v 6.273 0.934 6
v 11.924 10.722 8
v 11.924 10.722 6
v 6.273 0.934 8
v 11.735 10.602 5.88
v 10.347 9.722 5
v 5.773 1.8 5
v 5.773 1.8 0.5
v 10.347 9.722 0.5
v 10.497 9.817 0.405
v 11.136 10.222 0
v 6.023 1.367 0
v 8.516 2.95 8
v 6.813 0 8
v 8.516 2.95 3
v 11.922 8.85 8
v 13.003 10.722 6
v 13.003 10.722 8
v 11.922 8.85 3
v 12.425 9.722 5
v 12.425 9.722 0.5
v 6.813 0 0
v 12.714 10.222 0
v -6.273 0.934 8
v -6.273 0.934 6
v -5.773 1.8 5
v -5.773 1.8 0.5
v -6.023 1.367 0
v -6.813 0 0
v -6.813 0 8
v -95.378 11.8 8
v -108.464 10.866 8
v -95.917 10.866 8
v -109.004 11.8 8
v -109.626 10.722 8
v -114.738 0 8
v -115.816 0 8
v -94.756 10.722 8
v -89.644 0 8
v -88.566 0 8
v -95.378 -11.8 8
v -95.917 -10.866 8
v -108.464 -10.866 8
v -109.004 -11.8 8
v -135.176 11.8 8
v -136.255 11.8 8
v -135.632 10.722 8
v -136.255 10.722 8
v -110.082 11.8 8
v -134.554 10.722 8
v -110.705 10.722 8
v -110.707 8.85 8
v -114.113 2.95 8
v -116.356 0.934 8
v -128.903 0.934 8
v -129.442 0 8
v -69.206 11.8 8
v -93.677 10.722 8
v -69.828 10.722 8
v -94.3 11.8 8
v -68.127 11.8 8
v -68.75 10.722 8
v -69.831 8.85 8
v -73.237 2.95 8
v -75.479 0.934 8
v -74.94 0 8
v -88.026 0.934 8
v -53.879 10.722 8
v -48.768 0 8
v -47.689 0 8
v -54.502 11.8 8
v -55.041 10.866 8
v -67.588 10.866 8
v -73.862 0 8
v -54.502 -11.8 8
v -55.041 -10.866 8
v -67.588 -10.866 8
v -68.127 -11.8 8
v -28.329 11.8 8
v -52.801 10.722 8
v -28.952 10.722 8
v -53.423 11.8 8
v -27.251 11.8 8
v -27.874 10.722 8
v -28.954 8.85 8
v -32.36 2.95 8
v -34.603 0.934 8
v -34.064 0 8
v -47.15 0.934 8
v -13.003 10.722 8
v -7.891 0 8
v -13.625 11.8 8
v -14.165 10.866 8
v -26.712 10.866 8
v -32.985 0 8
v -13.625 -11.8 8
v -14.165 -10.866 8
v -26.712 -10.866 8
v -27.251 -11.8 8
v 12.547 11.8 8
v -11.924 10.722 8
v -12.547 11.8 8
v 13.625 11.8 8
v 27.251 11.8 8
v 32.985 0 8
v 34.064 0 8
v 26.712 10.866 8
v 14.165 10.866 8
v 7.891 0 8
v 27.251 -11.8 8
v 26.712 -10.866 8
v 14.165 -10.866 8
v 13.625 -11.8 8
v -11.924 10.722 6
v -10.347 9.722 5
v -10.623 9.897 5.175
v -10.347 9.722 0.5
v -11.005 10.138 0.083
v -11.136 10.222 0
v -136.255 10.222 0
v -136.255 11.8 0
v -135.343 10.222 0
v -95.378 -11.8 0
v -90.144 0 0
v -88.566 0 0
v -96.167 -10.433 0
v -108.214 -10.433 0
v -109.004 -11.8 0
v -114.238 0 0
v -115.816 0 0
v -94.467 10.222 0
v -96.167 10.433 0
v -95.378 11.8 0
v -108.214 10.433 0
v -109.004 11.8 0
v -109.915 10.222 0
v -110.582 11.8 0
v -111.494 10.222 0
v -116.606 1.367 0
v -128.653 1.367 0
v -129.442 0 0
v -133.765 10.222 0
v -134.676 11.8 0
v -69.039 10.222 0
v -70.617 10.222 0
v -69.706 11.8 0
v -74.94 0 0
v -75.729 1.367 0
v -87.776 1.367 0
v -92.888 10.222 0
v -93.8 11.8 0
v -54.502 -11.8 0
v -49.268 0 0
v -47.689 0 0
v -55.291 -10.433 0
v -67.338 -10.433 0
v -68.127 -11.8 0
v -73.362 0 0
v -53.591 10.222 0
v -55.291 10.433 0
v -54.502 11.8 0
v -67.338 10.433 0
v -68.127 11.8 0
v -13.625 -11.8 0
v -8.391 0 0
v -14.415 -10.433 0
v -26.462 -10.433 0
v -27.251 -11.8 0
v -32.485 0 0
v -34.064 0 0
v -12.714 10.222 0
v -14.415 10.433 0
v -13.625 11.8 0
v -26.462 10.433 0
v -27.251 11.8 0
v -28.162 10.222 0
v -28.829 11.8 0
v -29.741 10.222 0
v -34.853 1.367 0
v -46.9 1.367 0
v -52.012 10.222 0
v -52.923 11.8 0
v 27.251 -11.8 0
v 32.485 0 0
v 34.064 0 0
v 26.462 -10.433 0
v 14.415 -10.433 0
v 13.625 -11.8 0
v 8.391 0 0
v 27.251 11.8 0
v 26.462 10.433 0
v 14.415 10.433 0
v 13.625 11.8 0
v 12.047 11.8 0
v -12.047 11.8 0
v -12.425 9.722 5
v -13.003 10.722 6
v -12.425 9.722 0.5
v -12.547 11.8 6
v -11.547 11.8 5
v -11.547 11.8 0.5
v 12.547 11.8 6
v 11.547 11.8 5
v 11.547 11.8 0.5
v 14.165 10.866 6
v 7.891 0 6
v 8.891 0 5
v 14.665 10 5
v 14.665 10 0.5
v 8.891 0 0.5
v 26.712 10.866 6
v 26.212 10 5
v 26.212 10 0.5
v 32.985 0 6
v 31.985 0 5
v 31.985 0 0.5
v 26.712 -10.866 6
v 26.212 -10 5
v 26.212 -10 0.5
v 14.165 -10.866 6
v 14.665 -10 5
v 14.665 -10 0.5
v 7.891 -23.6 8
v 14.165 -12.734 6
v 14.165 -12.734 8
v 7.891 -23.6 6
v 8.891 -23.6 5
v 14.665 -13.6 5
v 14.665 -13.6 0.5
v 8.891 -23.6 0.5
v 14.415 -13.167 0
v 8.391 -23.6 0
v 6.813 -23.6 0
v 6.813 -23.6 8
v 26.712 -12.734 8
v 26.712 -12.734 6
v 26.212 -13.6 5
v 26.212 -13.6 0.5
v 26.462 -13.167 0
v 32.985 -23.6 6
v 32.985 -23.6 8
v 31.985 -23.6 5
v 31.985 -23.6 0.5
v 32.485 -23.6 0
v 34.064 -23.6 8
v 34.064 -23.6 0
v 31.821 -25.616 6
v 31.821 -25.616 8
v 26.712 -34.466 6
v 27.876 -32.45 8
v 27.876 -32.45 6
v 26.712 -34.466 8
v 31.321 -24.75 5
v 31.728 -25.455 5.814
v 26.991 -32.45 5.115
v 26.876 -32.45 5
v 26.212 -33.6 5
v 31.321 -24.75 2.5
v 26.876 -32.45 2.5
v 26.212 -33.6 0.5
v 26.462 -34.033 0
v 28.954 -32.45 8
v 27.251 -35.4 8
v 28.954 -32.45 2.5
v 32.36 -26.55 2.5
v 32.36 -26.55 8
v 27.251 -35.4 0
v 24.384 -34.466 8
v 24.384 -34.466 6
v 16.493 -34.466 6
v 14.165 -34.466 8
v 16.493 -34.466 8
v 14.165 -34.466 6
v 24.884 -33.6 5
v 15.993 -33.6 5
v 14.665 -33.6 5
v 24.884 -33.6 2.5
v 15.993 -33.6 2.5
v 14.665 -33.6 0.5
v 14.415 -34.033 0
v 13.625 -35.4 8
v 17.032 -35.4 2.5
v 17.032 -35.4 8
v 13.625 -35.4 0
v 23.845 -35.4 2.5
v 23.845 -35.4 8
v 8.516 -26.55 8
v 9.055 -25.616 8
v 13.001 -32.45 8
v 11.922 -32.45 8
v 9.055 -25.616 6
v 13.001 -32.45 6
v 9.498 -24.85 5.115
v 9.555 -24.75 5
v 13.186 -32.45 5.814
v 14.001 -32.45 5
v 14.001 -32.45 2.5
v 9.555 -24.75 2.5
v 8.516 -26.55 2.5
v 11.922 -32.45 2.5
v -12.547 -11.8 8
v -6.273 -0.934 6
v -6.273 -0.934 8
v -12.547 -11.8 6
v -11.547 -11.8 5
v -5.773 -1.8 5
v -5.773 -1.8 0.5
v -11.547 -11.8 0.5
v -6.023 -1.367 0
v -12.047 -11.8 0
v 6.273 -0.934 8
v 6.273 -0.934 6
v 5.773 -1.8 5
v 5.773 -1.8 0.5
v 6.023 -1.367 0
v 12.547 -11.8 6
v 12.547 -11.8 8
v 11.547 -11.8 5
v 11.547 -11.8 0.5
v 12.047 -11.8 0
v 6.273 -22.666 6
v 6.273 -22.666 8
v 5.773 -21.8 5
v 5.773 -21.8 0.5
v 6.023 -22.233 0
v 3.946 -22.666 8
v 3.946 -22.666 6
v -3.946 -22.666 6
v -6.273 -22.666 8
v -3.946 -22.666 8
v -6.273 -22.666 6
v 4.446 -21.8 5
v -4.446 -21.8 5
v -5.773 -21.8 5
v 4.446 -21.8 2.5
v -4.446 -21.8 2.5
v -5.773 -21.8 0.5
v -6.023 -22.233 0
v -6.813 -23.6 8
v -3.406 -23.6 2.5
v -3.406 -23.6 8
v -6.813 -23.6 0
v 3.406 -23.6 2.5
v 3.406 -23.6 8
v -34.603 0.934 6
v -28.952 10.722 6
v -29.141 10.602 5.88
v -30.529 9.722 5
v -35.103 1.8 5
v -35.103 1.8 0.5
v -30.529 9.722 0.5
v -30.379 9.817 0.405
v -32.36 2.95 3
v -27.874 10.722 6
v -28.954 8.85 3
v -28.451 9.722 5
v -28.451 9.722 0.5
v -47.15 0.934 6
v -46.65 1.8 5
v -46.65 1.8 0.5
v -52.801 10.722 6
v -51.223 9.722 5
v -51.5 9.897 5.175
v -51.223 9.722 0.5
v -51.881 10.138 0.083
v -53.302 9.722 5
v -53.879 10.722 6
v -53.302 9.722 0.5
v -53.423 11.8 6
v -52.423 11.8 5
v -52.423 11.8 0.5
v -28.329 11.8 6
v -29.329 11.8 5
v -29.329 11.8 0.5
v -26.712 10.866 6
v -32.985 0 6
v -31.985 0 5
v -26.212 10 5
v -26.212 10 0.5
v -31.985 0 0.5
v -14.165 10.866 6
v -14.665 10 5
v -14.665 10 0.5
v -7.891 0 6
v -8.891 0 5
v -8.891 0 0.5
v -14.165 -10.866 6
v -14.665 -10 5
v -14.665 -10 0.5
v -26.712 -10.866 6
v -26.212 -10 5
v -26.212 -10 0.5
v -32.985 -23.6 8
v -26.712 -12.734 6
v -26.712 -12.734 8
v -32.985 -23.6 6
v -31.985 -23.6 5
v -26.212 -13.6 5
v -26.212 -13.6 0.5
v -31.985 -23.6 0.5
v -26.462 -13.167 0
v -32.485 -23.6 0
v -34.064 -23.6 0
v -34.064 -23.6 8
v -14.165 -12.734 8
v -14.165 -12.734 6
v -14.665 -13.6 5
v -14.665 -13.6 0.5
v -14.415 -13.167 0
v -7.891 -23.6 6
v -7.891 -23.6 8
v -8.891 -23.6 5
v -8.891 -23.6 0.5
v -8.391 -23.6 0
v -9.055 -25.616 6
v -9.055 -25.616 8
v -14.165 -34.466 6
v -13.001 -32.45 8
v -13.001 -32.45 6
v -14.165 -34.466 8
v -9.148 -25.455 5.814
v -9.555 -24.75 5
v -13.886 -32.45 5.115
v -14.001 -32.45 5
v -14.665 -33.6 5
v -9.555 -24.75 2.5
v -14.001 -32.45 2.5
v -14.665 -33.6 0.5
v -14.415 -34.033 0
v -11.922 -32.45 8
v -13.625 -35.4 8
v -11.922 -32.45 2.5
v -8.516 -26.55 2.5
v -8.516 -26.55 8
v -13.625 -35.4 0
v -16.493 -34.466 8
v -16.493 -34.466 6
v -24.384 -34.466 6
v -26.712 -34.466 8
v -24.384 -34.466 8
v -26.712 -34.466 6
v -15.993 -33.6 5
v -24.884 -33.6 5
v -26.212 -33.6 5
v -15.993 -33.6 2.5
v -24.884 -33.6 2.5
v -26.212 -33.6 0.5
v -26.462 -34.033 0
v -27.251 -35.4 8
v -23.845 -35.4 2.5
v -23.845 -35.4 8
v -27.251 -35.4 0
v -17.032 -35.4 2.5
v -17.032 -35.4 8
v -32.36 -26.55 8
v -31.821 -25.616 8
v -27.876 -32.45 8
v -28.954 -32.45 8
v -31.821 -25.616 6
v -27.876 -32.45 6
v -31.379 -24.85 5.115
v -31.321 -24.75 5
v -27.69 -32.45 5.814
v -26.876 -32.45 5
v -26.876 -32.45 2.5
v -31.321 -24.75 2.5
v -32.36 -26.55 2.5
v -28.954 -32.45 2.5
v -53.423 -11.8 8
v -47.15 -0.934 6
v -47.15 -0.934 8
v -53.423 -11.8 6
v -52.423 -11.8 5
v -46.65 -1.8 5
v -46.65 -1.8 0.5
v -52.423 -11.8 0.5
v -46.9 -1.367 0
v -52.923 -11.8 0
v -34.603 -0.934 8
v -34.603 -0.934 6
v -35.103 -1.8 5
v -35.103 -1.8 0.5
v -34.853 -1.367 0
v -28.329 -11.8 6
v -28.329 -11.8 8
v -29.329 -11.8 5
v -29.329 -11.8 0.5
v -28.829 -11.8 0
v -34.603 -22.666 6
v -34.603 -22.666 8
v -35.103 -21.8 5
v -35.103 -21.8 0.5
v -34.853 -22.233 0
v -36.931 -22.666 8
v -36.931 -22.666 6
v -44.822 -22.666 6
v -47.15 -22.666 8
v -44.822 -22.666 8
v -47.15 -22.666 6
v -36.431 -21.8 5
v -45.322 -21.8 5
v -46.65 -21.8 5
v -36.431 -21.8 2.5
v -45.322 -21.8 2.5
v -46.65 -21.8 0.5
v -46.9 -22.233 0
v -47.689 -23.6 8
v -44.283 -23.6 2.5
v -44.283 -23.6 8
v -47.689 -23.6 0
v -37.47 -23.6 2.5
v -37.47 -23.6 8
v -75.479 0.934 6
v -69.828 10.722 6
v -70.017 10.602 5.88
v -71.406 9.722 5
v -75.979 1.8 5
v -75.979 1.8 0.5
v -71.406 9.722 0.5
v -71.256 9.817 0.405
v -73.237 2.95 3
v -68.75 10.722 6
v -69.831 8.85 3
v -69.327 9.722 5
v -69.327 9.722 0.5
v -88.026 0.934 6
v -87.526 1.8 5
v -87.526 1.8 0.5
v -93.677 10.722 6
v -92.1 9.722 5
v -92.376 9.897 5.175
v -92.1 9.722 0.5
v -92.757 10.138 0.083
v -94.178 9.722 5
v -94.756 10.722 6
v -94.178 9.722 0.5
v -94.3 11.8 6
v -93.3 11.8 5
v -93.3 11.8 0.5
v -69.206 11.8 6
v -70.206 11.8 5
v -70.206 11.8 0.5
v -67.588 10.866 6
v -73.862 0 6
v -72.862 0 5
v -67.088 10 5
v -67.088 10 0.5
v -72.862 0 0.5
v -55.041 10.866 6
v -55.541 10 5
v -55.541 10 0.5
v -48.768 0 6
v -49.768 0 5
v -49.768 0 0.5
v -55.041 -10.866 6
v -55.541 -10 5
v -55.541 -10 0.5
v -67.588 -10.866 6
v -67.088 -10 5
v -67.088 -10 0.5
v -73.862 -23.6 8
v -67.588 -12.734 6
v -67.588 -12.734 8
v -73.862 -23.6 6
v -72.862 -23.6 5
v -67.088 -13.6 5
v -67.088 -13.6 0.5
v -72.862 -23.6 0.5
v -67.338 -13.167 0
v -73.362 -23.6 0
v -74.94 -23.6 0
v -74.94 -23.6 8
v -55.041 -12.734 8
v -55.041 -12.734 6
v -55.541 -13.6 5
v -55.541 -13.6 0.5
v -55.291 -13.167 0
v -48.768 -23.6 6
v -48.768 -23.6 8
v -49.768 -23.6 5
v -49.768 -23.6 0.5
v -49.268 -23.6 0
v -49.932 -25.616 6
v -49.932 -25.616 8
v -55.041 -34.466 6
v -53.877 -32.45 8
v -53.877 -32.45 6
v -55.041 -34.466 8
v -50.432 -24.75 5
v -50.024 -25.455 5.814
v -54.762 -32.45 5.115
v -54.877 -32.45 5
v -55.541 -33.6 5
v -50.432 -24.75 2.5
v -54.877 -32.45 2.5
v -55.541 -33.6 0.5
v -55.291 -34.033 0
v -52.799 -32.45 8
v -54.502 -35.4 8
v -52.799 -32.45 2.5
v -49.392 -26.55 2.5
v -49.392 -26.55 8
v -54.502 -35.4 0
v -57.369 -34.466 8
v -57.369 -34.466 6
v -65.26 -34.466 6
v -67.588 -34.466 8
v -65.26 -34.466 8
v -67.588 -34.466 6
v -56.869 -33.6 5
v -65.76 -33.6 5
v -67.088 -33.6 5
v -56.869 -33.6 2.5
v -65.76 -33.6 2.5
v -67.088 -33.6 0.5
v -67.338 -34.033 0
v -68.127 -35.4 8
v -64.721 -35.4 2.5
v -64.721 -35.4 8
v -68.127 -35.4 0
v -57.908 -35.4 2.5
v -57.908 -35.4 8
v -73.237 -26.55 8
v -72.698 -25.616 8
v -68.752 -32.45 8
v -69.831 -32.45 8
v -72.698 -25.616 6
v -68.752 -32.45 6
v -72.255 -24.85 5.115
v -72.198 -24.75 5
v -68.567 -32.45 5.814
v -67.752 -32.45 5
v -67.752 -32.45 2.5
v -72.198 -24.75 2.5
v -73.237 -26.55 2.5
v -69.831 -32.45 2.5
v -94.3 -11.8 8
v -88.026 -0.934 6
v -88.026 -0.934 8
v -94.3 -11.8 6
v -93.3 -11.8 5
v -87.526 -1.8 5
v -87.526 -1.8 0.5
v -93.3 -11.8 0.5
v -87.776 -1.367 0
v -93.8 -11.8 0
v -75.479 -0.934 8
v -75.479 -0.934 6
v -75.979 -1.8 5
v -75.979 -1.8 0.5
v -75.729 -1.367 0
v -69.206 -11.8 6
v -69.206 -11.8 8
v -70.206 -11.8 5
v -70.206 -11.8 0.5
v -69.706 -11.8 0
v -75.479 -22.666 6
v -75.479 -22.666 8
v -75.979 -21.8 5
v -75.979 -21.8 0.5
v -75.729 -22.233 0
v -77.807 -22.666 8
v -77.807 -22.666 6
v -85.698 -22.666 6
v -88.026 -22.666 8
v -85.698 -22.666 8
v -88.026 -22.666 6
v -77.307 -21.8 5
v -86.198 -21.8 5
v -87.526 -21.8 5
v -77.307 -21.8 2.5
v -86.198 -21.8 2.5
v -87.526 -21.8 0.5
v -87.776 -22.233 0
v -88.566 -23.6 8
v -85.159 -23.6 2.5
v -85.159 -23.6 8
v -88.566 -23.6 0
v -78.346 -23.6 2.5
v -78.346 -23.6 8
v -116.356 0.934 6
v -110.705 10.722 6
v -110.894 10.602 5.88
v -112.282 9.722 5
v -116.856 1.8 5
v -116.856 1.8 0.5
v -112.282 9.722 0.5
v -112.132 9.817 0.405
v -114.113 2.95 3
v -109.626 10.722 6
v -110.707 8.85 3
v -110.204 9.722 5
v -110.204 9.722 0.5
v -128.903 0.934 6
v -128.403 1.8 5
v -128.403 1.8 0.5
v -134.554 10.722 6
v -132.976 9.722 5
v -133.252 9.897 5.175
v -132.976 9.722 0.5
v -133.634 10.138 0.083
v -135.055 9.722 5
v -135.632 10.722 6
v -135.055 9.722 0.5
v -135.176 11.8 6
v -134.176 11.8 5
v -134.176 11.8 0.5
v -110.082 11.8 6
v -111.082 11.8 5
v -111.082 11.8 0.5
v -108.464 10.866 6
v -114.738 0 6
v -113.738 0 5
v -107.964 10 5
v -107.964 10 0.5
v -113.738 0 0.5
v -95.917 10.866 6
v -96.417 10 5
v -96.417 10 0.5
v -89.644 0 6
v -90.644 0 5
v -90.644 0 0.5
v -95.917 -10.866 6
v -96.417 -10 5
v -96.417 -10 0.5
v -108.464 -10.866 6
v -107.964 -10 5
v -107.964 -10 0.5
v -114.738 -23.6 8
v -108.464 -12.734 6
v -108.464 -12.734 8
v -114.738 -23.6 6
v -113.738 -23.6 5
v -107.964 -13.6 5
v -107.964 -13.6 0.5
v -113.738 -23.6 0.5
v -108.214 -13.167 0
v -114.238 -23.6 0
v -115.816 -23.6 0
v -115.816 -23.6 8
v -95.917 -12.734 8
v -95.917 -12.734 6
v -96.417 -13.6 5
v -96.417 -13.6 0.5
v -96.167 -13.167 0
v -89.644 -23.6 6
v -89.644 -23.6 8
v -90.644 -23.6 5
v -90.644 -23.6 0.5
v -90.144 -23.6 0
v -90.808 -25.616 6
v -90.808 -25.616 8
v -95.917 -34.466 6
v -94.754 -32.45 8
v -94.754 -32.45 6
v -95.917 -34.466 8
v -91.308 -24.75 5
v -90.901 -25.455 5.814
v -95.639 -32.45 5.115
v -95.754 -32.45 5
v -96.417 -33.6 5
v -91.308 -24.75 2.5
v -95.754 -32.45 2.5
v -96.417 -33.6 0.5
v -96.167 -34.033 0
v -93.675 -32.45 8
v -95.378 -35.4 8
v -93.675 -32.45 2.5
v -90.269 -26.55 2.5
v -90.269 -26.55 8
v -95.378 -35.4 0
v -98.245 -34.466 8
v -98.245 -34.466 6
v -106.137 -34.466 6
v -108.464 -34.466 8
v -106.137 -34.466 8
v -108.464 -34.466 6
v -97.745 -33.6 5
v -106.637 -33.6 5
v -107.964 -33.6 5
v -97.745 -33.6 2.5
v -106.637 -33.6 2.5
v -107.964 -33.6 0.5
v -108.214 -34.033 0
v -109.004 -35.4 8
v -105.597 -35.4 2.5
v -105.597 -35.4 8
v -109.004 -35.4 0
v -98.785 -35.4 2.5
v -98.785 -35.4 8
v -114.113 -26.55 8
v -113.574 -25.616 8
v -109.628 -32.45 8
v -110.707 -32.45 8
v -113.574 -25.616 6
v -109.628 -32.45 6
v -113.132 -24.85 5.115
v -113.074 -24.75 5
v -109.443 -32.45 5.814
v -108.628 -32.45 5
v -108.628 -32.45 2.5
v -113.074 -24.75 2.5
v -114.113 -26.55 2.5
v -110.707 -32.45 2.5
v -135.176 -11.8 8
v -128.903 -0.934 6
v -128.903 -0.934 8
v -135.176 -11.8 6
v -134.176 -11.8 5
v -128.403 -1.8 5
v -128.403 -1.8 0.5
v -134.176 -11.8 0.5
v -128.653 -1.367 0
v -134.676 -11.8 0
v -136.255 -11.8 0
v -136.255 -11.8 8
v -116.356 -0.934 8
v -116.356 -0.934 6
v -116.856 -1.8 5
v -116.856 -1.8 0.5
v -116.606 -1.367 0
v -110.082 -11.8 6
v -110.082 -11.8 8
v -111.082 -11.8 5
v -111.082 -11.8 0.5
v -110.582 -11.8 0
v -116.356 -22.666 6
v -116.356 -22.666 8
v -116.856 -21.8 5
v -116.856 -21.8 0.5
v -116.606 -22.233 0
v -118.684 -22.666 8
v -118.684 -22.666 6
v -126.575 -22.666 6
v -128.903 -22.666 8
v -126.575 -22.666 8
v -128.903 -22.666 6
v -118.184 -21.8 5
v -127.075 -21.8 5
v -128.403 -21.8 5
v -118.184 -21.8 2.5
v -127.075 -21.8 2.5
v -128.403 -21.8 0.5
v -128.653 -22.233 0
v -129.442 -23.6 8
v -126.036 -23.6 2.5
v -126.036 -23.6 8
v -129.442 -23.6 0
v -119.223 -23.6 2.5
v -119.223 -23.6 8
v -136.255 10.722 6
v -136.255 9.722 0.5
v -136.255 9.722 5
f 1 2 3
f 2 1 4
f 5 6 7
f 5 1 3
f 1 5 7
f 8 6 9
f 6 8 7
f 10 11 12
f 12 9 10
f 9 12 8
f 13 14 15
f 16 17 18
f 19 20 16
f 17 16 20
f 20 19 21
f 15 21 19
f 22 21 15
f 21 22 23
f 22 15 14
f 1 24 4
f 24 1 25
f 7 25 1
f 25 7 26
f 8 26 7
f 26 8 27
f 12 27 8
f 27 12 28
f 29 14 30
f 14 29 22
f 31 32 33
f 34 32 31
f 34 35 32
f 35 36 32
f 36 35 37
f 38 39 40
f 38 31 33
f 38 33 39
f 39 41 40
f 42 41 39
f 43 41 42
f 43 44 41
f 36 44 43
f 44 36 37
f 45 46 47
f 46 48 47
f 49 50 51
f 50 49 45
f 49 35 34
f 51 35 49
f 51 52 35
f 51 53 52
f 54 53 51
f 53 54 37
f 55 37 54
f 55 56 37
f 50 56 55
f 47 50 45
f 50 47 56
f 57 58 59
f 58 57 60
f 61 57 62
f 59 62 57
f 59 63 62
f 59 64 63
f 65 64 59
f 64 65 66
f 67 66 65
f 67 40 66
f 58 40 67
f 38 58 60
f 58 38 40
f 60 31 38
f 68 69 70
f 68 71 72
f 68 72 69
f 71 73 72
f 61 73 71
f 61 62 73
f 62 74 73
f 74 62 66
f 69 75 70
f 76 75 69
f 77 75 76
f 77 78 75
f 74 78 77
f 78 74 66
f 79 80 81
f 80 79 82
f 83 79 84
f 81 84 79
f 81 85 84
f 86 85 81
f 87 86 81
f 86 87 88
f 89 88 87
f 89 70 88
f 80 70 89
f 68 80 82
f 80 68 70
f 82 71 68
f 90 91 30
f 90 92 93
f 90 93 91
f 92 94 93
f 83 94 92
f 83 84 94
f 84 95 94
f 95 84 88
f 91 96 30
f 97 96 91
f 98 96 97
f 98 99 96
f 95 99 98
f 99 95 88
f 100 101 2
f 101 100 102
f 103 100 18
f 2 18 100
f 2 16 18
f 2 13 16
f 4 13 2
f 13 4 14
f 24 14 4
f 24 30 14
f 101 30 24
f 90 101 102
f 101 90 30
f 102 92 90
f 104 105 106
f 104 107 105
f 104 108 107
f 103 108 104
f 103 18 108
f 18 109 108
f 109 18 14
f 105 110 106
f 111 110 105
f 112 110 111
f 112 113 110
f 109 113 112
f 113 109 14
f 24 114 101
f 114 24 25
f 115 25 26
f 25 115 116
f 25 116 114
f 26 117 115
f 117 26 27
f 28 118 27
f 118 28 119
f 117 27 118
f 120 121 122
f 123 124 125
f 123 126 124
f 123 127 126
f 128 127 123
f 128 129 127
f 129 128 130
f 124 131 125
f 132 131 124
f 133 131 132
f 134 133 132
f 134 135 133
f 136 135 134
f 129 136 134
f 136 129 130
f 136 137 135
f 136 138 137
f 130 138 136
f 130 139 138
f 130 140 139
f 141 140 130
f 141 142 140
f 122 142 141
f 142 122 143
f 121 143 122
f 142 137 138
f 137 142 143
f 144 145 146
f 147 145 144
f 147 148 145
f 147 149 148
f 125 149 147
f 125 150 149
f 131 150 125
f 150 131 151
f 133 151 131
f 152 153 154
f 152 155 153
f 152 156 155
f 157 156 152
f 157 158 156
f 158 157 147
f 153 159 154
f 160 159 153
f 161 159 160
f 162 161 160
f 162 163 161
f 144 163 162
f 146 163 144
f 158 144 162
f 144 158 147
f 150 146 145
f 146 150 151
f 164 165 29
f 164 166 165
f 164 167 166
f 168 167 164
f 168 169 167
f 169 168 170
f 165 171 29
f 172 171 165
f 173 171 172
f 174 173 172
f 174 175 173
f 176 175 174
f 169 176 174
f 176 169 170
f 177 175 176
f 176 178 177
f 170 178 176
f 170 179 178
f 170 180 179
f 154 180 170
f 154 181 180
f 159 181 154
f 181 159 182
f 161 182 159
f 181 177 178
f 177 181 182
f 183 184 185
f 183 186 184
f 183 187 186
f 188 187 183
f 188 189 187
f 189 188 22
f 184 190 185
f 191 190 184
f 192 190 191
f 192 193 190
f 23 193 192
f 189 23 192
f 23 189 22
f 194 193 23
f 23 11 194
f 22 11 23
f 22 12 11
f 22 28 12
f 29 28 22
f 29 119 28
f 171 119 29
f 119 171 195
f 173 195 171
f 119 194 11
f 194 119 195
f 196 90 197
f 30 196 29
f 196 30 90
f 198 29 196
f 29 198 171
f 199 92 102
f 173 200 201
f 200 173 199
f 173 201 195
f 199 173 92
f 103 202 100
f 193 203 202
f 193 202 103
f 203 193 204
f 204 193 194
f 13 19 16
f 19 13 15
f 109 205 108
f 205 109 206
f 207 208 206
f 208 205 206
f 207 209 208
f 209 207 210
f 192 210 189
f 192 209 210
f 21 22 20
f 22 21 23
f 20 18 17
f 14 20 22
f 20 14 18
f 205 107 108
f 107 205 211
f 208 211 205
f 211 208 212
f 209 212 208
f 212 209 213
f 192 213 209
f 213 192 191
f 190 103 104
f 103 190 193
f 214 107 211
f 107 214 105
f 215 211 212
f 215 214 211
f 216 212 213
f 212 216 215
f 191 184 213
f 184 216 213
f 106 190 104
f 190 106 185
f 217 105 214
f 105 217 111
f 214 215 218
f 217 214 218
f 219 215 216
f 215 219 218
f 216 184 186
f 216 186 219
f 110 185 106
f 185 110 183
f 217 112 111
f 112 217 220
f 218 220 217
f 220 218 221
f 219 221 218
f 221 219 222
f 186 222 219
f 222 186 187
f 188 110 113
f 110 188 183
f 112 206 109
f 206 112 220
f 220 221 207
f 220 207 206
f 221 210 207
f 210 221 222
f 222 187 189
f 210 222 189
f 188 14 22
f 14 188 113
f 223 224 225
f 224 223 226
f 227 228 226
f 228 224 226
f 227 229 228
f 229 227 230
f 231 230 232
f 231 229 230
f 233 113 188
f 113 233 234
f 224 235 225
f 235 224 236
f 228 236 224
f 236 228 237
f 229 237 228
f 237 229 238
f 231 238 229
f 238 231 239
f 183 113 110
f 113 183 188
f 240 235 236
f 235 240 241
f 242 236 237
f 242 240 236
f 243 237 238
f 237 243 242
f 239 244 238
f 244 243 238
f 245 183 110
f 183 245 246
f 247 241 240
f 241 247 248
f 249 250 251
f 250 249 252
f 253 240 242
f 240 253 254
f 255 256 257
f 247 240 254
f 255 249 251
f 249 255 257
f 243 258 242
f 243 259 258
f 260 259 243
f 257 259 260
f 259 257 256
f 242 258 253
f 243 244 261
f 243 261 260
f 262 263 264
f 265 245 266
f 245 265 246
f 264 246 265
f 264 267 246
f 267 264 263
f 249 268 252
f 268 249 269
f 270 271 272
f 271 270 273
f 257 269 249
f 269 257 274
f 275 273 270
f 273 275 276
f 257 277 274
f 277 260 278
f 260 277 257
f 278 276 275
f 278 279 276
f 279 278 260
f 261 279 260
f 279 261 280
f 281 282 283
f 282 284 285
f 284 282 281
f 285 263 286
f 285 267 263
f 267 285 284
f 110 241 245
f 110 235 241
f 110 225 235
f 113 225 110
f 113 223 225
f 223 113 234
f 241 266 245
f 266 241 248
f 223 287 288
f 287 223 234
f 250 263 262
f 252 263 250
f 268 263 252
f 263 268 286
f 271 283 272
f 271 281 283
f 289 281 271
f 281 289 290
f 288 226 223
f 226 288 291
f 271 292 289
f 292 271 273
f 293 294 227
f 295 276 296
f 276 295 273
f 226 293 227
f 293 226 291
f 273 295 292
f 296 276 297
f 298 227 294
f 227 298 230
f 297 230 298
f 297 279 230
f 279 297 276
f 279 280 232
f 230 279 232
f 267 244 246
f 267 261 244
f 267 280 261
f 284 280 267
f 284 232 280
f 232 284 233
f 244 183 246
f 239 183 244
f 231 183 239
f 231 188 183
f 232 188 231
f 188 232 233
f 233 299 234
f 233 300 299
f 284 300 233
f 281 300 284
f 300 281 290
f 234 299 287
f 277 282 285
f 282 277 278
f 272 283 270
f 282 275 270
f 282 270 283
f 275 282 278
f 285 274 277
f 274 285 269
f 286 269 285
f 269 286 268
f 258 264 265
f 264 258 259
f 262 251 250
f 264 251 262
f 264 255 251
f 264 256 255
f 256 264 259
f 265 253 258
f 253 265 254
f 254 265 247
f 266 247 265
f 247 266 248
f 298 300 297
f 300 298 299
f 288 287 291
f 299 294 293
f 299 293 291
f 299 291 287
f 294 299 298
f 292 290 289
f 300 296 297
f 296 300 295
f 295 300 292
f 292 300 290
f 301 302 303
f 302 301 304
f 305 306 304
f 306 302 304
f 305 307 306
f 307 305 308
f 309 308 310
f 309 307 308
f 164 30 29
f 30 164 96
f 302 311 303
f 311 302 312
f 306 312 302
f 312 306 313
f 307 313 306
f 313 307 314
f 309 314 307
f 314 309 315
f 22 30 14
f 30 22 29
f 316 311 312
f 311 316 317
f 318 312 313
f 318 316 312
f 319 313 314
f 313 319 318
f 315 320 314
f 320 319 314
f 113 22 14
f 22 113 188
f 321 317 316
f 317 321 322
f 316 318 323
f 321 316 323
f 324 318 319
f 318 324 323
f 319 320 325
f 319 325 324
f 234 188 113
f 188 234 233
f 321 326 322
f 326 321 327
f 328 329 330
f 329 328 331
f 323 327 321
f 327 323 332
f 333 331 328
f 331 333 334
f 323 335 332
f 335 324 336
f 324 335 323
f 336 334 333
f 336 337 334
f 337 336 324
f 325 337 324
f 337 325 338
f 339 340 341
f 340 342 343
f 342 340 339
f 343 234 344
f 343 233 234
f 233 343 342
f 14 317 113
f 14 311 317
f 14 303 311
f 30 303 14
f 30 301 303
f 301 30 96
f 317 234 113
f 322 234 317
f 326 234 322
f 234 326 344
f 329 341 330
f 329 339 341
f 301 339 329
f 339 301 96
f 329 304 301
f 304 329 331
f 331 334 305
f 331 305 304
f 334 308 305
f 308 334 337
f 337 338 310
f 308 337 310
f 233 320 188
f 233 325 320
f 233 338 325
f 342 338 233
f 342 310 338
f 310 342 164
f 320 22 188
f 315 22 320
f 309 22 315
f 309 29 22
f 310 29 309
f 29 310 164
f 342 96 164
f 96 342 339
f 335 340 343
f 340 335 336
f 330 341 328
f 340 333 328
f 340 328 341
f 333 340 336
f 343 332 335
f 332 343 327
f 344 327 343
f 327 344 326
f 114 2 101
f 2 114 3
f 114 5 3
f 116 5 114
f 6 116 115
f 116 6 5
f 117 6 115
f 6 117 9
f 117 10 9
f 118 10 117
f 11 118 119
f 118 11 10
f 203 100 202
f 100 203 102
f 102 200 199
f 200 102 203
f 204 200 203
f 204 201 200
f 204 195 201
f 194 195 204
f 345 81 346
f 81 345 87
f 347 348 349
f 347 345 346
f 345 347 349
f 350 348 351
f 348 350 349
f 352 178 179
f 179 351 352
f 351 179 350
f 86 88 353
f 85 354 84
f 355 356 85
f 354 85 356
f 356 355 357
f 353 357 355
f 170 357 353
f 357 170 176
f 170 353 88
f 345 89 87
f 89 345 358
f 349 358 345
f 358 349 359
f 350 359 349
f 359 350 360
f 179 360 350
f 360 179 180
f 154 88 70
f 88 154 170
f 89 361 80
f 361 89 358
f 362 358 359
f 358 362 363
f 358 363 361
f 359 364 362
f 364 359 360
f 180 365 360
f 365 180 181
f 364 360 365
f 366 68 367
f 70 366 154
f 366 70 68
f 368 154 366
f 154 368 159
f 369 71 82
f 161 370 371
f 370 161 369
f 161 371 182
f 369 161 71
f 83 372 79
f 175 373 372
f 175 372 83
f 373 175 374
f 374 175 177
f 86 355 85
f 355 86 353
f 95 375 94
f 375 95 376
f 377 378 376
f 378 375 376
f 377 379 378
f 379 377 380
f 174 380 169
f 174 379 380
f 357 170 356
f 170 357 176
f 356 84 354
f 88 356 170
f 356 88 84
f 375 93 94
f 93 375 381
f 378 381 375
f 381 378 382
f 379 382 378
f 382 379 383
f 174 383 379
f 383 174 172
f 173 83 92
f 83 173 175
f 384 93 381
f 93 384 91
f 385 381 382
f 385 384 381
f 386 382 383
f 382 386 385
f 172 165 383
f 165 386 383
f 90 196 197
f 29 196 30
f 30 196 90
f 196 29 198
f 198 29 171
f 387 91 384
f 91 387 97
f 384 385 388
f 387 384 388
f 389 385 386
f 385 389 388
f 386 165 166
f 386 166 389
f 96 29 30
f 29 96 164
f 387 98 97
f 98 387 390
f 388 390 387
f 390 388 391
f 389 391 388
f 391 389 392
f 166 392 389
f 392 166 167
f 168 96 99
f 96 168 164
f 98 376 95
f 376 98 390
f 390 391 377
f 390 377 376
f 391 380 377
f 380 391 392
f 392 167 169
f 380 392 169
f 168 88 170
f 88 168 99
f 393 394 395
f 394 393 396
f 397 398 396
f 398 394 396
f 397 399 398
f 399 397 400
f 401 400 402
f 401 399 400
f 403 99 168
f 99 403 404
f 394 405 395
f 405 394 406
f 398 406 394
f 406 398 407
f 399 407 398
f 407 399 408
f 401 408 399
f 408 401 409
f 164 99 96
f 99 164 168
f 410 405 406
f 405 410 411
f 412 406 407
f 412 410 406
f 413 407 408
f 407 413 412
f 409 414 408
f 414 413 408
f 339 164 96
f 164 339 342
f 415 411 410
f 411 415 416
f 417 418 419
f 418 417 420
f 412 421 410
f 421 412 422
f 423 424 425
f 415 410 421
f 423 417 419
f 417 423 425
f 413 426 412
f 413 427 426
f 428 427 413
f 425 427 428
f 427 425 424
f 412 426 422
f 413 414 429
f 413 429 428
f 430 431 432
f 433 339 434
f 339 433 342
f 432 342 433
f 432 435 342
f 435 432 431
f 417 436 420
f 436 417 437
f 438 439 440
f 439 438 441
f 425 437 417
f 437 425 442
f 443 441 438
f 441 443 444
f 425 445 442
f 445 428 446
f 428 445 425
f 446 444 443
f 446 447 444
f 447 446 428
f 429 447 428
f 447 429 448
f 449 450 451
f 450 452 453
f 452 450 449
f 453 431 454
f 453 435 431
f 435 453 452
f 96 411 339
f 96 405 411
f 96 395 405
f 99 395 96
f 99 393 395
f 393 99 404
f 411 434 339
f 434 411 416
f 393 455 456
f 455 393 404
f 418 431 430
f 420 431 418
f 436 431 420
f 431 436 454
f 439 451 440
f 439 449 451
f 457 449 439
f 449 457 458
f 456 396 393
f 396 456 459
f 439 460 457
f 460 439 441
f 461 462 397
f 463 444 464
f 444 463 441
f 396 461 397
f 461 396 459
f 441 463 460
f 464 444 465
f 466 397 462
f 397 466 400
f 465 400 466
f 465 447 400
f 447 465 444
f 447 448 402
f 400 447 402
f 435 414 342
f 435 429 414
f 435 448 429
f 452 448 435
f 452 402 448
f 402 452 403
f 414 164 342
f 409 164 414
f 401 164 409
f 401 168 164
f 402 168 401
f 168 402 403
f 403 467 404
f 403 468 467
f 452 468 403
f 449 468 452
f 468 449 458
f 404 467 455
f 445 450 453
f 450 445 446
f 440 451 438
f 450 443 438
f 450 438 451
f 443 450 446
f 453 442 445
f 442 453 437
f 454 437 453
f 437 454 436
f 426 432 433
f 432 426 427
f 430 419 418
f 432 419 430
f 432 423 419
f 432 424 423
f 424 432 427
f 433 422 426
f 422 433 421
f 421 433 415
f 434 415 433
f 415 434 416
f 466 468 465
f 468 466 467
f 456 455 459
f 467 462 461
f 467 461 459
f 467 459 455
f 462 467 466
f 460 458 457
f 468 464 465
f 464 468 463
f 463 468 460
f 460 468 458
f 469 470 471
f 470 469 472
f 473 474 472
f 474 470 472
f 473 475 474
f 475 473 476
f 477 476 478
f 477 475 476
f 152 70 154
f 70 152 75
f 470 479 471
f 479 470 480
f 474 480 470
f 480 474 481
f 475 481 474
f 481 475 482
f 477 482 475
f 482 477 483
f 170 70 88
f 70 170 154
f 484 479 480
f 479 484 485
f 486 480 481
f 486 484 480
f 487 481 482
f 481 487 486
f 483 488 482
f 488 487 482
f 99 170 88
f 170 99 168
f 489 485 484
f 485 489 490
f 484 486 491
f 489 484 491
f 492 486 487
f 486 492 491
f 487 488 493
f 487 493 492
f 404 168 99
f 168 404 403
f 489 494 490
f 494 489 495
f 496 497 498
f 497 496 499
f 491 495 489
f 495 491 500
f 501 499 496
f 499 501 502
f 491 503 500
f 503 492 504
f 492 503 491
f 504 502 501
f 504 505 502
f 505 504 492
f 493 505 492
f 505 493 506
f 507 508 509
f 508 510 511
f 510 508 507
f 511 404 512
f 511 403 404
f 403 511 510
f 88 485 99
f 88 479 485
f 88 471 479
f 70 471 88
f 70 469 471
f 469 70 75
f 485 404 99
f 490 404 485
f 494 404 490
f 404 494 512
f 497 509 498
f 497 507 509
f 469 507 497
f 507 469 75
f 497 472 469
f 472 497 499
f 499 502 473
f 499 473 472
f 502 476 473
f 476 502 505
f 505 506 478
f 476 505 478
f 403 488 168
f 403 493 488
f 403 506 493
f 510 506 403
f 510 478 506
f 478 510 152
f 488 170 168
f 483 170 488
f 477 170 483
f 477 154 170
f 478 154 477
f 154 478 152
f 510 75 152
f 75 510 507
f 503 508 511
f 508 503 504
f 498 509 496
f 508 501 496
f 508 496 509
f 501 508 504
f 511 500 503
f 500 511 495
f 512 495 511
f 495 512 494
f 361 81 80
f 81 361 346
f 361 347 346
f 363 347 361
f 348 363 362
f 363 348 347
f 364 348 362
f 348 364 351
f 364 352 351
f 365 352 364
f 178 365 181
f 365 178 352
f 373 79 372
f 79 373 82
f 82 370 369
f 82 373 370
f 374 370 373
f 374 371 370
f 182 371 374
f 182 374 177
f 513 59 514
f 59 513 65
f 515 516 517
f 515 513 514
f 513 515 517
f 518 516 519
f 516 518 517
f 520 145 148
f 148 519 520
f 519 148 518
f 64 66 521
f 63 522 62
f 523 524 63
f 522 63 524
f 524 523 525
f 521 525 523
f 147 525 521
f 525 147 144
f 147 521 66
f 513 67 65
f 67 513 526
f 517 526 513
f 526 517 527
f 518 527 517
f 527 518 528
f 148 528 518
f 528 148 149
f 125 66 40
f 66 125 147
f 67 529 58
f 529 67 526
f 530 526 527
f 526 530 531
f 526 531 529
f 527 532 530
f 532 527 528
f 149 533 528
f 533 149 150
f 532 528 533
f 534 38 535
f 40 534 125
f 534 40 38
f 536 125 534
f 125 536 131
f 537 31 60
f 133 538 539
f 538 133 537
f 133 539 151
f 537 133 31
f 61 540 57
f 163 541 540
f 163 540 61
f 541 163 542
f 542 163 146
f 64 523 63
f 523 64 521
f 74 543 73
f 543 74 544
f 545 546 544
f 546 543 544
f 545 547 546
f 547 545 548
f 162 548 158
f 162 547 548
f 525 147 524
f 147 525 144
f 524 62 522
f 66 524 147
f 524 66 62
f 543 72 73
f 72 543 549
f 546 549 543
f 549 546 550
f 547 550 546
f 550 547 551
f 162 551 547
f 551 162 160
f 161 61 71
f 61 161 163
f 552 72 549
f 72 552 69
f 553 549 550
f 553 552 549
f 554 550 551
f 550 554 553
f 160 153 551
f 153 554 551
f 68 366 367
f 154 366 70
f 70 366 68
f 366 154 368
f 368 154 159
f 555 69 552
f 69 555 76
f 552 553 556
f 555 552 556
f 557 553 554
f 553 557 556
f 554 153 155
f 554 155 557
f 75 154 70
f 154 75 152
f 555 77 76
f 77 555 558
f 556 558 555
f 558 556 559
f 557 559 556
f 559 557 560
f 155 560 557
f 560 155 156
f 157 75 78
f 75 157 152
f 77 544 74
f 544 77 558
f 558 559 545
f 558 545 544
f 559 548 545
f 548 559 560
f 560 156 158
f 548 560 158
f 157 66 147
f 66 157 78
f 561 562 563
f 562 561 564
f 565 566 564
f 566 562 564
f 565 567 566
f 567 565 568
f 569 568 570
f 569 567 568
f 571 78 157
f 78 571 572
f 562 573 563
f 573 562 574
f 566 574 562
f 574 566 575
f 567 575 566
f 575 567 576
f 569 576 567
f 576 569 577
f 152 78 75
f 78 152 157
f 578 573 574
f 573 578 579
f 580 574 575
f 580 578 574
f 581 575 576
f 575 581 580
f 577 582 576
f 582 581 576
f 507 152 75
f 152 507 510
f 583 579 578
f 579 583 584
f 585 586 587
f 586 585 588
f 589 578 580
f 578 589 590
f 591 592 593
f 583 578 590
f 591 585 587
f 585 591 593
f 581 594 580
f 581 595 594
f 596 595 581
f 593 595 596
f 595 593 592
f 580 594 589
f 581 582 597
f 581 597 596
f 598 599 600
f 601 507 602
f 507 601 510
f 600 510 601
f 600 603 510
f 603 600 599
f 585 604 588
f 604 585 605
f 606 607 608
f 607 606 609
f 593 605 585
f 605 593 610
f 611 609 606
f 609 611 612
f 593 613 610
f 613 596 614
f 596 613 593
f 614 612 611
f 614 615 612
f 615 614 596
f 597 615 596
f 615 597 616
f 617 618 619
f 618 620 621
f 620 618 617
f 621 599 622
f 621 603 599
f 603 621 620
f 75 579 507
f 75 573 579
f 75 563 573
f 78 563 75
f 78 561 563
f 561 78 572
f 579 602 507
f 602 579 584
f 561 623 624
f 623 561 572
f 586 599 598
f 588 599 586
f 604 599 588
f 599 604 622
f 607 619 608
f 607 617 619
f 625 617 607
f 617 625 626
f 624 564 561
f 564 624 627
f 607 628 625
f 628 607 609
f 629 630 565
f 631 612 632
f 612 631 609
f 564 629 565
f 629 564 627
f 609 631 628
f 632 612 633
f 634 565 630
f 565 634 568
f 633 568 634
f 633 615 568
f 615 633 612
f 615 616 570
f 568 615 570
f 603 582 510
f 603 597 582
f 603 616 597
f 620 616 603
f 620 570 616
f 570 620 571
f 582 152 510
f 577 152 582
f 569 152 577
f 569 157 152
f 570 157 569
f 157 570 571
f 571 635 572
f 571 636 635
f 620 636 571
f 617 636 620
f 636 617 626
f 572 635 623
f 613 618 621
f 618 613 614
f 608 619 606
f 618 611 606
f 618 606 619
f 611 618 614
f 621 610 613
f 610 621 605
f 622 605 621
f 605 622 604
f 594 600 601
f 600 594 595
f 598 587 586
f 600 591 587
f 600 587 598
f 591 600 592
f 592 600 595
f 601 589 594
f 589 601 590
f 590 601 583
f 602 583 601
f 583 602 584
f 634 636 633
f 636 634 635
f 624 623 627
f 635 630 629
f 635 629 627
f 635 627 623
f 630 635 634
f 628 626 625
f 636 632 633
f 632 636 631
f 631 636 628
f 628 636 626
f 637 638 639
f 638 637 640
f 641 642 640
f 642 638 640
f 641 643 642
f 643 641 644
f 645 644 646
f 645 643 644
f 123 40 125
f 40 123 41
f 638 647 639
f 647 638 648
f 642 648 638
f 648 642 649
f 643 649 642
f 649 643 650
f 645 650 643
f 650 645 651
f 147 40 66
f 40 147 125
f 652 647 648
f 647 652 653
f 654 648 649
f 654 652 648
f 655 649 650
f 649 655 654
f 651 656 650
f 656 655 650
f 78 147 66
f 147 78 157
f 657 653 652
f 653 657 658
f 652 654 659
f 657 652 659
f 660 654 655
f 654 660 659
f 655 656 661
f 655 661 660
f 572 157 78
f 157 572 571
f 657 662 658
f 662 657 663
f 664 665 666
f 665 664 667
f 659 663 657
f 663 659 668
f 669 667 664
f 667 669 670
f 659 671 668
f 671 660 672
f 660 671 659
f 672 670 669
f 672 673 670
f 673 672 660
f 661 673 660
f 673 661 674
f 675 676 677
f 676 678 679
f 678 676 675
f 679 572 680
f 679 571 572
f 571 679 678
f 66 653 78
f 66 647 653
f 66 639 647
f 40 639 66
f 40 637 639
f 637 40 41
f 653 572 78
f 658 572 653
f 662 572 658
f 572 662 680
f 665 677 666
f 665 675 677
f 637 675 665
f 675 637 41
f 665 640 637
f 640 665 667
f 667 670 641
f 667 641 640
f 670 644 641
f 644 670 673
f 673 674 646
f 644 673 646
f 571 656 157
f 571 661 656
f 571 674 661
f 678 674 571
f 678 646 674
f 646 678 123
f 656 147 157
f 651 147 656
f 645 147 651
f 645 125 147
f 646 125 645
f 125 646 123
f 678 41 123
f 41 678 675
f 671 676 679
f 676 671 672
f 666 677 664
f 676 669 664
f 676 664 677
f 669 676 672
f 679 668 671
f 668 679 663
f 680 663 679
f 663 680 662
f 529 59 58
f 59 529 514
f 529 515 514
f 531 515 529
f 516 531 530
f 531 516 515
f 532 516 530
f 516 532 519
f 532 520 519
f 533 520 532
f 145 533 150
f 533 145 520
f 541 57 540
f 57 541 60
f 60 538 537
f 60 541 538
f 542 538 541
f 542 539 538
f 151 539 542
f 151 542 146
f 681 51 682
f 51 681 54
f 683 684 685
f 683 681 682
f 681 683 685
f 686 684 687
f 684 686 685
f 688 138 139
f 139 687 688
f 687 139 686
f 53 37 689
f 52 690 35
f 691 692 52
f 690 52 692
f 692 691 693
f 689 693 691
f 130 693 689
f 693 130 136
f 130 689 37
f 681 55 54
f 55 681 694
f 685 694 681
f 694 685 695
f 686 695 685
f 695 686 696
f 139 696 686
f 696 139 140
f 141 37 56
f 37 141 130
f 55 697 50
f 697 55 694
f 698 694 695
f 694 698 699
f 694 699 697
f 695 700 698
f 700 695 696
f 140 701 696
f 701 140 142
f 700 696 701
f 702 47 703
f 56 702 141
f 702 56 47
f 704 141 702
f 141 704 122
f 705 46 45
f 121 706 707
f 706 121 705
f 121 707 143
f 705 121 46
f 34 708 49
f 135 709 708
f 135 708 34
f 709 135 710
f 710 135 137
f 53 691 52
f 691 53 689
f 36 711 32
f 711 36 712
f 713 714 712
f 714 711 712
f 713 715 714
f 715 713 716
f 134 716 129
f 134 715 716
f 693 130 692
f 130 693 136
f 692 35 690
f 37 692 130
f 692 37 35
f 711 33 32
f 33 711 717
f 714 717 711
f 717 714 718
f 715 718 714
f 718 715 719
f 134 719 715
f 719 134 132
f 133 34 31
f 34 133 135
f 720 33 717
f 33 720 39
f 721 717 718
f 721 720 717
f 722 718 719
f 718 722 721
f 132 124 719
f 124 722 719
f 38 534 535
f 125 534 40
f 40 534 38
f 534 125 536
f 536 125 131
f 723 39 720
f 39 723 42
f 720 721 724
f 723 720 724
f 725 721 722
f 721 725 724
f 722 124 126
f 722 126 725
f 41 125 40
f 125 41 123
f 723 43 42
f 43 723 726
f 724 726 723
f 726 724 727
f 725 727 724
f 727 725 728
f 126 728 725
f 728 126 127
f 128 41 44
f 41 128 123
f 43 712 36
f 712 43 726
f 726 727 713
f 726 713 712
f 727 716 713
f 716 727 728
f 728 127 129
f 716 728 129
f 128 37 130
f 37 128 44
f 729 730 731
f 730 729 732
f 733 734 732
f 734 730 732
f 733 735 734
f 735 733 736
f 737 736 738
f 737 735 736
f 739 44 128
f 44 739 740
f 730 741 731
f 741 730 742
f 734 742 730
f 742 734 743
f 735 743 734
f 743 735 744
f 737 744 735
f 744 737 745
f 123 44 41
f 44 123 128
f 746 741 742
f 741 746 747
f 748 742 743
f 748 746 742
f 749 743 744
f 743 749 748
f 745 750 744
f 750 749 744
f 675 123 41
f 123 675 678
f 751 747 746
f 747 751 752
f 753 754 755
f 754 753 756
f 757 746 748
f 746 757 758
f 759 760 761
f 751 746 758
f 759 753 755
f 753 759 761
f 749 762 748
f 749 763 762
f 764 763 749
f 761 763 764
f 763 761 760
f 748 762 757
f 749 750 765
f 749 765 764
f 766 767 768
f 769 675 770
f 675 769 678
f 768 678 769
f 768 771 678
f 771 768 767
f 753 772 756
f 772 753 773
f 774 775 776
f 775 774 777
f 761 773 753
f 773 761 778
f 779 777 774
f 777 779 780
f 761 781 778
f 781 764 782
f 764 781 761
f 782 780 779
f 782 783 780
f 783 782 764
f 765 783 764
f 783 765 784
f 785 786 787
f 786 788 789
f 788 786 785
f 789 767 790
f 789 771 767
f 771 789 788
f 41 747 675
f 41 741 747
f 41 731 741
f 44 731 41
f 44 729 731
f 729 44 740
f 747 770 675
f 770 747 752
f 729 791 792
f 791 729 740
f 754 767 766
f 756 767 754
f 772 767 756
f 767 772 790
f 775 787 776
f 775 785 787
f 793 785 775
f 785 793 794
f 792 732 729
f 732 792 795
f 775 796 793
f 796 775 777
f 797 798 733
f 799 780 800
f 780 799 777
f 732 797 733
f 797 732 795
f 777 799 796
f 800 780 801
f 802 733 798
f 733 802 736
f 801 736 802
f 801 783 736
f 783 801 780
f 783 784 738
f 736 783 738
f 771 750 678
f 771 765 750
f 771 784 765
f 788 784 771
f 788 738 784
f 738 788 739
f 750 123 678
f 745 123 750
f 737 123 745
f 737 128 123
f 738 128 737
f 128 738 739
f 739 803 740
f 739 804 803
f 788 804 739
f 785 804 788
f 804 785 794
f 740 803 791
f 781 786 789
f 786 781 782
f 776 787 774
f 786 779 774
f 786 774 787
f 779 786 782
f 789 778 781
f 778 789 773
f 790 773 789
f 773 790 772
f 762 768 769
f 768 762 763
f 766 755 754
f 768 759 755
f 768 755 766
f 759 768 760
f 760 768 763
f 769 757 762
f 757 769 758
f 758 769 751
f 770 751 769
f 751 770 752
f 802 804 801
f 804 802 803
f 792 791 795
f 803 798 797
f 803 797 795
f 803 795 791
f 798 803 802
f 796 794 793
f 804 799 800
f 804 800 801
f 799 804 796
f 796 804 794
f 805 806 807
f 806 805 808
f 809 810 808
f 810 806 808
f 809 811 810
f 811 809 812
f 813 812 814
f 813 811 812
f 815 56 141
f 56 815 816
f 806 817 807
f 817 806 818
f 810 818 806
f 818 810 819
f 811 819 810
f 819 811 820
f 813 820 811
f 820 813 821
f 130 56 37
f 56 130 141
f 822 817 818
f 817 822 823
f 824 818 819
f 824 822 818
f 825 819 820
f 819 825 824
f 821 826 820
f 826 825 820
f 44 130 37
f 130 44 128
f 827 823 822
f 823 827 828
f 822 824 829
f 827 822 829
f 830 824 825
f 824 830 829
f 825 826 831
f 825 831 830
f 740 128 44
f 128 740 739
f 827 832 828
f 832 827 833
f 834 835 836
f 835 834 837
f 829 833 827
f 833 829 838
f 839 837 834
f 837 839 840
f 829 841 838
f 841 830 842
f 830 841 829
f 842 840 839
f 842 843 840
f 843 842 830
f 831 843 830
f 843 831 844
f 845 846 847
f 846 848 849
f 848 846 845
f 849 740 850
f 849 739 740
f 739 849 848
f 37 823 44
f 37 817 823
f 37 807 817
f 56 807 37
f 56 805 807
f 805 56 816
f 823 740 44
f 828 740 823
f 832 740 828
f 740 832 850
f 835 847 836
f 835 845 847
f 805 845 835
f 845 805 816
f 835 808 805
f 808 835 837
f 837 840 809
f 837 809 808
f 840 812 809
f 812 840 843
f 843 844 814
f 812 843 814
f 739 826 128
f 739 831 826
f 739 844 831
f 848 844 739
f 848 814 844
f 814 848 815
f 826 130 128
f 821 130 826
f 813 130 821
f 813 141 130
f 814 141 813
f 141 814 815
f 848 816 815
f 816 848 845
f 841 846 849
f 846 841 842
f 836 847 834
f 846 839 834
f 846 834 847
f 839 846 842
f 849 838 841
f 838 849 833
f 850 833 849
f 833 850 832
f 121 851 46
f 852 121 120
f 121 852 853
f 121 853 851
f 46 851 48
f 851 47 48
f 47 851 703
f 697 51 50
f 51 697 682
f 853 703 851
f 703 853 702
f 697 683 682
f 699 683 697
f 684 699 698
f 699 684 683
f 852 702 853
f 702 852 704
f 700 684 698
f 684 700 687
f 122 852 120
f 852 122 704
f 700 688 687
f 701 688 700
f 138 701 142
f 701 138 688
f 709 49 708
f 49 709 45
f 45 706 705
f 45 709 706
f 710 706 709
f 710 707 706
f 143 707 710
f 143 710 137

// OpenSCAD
// file: honeycomb_element.scad
$fn = 50;

radius = 13.6;
diameter = radius * 2;

h_inner = 10;
r_inner = h_inner * 2 / sqrt(3);

h_outer = 10 + 1.8;
r_outer = h_outer * 2 / sqrt(3);

h_thin = 10 + 1;
r_thin = h_thin * 2 / sqrt(3);

total_height = 8;

small_value = 0.1;

clips_height = 5;
clips_offset = 0.5;
clips_side_offset = 0.00;

module basic_polygon() {
  polygon(
    [
      [r_outer, total_height],
      [r_outer, 0],
      [r_inner + 0.5, 0],
      [r_inner, 0.5],
      [r_inner, total_height - 3],
      [r_inner + 1, total_height - 2],
      [r_inner + 1, total_height],
    ]
  );
}

module basic_model() {
  rotate_extrude($fn=6) {
    basic_polygon();
  }
}

module panel_with_clips(pin_1 = false, pin_2 = false, pin_3 = false, pin_4 = false, pin_5 = false, pin_6 = false, slot_1 = false, slot_2 = false, slot_3 = false, slot_4 = false, slot_5 = false, slot_6 = false) {

  difference() {
    basic_model();

    if (slot_1) {
      rotate([0, 0, 0])
        translate([0, -h_outer * 2, total_height - (clips_height + clips_offset) / 2])
          linear_extrude(height=clips_height + clips_offset, center=true)
            polygon([[clips_side_offset, h_outer / 2], [-clips_side_offset, h_outer / 2], [-r_outer / 2 - clips_side_offset, h_outer * 1.5], [r_outer / 2 + clips_side_offset, h_outer * 1.5]]);
    }

    if (slot_2) {
      rotate([0, 0, 60])
        translate([0, -h_outer * 2, total_height - (clips_height + clips_offset) / 2])
          linear_extrude(height=clips_height + clips_offset, center=true)
            polygon([[clips_side_offset, h_outer / 2], [-clips_side_offset, h_outer / 2], [-r_outer / 2 - clips_side_offset, h_outer * 1.5], [r_outer / 2 + clips_side_offset, h_outer * 1.5]]);
    }

    if (slot_3) {
      rotate([0, 0, 120])
        translate([0, -h_outer * 2, total_height - (clips_height + clips_offset) / 2])
          linear_extrude(height=clips_height + clips_offset, center=true)
            polygon([[clips_side_offset, h_outer / 2], [-clips_side_offset, h_outer / 2], [-r_outer / 2 - clips_side_offset, h_outer * 1.5], [r_outer / 2 + clips_side_offset, h_outer * 1.5]]);
    }

    if (slot_4) {
      rotate([0, 0, 180])
        translate([0, -h_outer * 2, total_height - (clips_height + clips_offset) / 2])
          linear_extrude(height=clips_height + clips_offset, center=true)
            polygon([[clips_side_offset, h_outer / 2], [-clips_side_offset, h_outer / 2], [-r_outer / 2 - clips_side_offset, h_outer * 1.5], [r_outer / 2 + clips_side_offset, h_outer * 1.5]]);
    }

    if (slot_5) {
      rotate([0, 0, 240])
        translate([0, -h_outer * 2, total_height - (clips_height + clips_offset) / 2])
          linear_extrude(height=clips_height + clips_offset, center=true)
            polygon([[clips_side_offset, h_outer / 2], [-clips_side_offset, h_outer / 2], [-r_outer / 2 - clips_side_offset, h_outer * 1.5], [r_outer / 2 + clips_side_offset, h_outer * 1.5]]);
    }

    if (slot_6) {
      rotate([0, 0, 300])
        translate([0, -h_outer * 2, total_height - (clips_height + clips_offset) / 2])
          linear_extrude(height=clips_height + clips_offset, center=true)
            polygon([[clips_side_offset, h_outer / 2], [-clips_side_offset, h_outer / 2], [-r_outer / 2 - clips_side_offset, h_outer * 1.5], [r_outer / 2 + clips_side_offset, h_outer * 1.5]]);
    }
  }

  if (pin_1) {
    intersection() {
      translate([0, -h_outer * 2, 0])
        basic_model();
      translate([0, 0, total_height - clips_height / 2]) {
        rotate([0, 0, -180])
          linear_extrude(height=clips_height, center=true)
            polygon([[0, h_outer / 2], [-r_outer / 2, h_outer * 1.5], [r_outer / 2, h_outer * 1.5]]);
      }
    }
  }

  if (pin_2) {
    intersection() {
      translate([r_outer * 1.5, -h_outer, 0])
        basic_model();
      translate([0, 0, total_height - clips_height / 2]) {
        rotate([0, 0, -120])
          linear_extrude(height=clips_height, center=true)
            polygon([[0, h_outer / 2], [-r_outer / 2, h_outer * 1.5], [r_outer / 2, h_outer * 1.5]]);
      }
    }
  }

  if (pin_3) {
    intersection() {
      translate([r_outer * 1.5, h_outer, 0])
        basic_model();
      translate([0, 0, total_height - clips_height / 2]) {
        rotate([0, 0, -60])
          linear_extrude(height=clips_height, center=true)
            polygon([[0, h_outer / 2], [-r_outer / 2, h_outer * 1.5], [r_outer / 2, h_outer * 1.5]]);
      }
    }
  }

  if (pin_4) {
    intersection() {
      translate([0, h_outer * 2, 0])
        basic_model();

      translate([0, 0, total_height - clips_height / 2]) {
        linear_extrude(height=clips_height, center=true)
          polygon([[0, h_outer / 2], [-r_outer / 2, h_outer * 1.5], [r_outer / 2, h_outer * 1.5]]);
      }
    }
  }

  if (pin_5) {
    intersection() {
      translate([-r_outer * 1.5, h_outer, 0])
        basic_model();
      translate([0, 0, total_height - clips_height / 2]) {
        rotate([0, 0, 60])
          linear_extrude(height=clips_height, center=true)
            polygon([[0, h_outer / 2], [-r_outer / 2, h_outer * 1.5], [r_outer / 2, h_outer * 1.5]]);
      }
    }
  }

  if (pin_6) {
    intersection() {
      translate([-r_outer * 1.5, -h_outer, 0])
        basic_model();

      translate([0, 0, total_height - clips_height / 2]) {
        rotate([0, 0, 120])
          linear_extrude(height=clips_height, center=true)
            polygon([[0, h_outer / 2], [-r_outer / 2, h_outer * 1.5], [r_outer / 2, h_outer * 1.5]]);
      }
    }
  }
}

// end honeycomb_element.scad
// main file
$fn = 50;

h_outer = 10+1.8;
r_outer = h_outer * 2/sqrt(3);


use <honeycomb_element.scad>;

module perimeter_top_item(left_slot=false, inner_slot=false, middle_slot=false) {
  difference() {
    translate([0, h_outer, 0])
        panel_with_clips(slot_1=inner_slot, slot_2=left_slot);  
    
    translate([0, 50+h_outer, 0])
        cube([100, 100, 100], center = true);
  }
  
  translate([r_outer*1.5, 0, 0])
     panel_with_clips(slot_1=false,  pin_5=true); 
  
  translate([r_outer*1.5, -2*h_outer, 0])
     panel_with_clips(slot_1=true, slot_2=true,  slot_6=true); 
  
  translate([0*r_outer*3, -h_outer, 0])
     panel_with_clips(slot_1=true, slot_2=false);   
  
    
  translate([0, h_outer-r_outer, 0])
      rotate([90, 0, 90])
        linear_extrude(height = r_outer * 2, center=true)
          basic_polygon();
    
}




module perimeter_bottom() {
    
    perimeter_top_item();
    
    translate([-3*r_outer, 0, 0])
      perimeter_top_item();

    translate([-6*r_outer, 0, 0])
      perimeter_top_item();    
    
    translate([-9*r_outer, 0, 0])
      perimeter_top_item();

}

perimeter_bottom();
